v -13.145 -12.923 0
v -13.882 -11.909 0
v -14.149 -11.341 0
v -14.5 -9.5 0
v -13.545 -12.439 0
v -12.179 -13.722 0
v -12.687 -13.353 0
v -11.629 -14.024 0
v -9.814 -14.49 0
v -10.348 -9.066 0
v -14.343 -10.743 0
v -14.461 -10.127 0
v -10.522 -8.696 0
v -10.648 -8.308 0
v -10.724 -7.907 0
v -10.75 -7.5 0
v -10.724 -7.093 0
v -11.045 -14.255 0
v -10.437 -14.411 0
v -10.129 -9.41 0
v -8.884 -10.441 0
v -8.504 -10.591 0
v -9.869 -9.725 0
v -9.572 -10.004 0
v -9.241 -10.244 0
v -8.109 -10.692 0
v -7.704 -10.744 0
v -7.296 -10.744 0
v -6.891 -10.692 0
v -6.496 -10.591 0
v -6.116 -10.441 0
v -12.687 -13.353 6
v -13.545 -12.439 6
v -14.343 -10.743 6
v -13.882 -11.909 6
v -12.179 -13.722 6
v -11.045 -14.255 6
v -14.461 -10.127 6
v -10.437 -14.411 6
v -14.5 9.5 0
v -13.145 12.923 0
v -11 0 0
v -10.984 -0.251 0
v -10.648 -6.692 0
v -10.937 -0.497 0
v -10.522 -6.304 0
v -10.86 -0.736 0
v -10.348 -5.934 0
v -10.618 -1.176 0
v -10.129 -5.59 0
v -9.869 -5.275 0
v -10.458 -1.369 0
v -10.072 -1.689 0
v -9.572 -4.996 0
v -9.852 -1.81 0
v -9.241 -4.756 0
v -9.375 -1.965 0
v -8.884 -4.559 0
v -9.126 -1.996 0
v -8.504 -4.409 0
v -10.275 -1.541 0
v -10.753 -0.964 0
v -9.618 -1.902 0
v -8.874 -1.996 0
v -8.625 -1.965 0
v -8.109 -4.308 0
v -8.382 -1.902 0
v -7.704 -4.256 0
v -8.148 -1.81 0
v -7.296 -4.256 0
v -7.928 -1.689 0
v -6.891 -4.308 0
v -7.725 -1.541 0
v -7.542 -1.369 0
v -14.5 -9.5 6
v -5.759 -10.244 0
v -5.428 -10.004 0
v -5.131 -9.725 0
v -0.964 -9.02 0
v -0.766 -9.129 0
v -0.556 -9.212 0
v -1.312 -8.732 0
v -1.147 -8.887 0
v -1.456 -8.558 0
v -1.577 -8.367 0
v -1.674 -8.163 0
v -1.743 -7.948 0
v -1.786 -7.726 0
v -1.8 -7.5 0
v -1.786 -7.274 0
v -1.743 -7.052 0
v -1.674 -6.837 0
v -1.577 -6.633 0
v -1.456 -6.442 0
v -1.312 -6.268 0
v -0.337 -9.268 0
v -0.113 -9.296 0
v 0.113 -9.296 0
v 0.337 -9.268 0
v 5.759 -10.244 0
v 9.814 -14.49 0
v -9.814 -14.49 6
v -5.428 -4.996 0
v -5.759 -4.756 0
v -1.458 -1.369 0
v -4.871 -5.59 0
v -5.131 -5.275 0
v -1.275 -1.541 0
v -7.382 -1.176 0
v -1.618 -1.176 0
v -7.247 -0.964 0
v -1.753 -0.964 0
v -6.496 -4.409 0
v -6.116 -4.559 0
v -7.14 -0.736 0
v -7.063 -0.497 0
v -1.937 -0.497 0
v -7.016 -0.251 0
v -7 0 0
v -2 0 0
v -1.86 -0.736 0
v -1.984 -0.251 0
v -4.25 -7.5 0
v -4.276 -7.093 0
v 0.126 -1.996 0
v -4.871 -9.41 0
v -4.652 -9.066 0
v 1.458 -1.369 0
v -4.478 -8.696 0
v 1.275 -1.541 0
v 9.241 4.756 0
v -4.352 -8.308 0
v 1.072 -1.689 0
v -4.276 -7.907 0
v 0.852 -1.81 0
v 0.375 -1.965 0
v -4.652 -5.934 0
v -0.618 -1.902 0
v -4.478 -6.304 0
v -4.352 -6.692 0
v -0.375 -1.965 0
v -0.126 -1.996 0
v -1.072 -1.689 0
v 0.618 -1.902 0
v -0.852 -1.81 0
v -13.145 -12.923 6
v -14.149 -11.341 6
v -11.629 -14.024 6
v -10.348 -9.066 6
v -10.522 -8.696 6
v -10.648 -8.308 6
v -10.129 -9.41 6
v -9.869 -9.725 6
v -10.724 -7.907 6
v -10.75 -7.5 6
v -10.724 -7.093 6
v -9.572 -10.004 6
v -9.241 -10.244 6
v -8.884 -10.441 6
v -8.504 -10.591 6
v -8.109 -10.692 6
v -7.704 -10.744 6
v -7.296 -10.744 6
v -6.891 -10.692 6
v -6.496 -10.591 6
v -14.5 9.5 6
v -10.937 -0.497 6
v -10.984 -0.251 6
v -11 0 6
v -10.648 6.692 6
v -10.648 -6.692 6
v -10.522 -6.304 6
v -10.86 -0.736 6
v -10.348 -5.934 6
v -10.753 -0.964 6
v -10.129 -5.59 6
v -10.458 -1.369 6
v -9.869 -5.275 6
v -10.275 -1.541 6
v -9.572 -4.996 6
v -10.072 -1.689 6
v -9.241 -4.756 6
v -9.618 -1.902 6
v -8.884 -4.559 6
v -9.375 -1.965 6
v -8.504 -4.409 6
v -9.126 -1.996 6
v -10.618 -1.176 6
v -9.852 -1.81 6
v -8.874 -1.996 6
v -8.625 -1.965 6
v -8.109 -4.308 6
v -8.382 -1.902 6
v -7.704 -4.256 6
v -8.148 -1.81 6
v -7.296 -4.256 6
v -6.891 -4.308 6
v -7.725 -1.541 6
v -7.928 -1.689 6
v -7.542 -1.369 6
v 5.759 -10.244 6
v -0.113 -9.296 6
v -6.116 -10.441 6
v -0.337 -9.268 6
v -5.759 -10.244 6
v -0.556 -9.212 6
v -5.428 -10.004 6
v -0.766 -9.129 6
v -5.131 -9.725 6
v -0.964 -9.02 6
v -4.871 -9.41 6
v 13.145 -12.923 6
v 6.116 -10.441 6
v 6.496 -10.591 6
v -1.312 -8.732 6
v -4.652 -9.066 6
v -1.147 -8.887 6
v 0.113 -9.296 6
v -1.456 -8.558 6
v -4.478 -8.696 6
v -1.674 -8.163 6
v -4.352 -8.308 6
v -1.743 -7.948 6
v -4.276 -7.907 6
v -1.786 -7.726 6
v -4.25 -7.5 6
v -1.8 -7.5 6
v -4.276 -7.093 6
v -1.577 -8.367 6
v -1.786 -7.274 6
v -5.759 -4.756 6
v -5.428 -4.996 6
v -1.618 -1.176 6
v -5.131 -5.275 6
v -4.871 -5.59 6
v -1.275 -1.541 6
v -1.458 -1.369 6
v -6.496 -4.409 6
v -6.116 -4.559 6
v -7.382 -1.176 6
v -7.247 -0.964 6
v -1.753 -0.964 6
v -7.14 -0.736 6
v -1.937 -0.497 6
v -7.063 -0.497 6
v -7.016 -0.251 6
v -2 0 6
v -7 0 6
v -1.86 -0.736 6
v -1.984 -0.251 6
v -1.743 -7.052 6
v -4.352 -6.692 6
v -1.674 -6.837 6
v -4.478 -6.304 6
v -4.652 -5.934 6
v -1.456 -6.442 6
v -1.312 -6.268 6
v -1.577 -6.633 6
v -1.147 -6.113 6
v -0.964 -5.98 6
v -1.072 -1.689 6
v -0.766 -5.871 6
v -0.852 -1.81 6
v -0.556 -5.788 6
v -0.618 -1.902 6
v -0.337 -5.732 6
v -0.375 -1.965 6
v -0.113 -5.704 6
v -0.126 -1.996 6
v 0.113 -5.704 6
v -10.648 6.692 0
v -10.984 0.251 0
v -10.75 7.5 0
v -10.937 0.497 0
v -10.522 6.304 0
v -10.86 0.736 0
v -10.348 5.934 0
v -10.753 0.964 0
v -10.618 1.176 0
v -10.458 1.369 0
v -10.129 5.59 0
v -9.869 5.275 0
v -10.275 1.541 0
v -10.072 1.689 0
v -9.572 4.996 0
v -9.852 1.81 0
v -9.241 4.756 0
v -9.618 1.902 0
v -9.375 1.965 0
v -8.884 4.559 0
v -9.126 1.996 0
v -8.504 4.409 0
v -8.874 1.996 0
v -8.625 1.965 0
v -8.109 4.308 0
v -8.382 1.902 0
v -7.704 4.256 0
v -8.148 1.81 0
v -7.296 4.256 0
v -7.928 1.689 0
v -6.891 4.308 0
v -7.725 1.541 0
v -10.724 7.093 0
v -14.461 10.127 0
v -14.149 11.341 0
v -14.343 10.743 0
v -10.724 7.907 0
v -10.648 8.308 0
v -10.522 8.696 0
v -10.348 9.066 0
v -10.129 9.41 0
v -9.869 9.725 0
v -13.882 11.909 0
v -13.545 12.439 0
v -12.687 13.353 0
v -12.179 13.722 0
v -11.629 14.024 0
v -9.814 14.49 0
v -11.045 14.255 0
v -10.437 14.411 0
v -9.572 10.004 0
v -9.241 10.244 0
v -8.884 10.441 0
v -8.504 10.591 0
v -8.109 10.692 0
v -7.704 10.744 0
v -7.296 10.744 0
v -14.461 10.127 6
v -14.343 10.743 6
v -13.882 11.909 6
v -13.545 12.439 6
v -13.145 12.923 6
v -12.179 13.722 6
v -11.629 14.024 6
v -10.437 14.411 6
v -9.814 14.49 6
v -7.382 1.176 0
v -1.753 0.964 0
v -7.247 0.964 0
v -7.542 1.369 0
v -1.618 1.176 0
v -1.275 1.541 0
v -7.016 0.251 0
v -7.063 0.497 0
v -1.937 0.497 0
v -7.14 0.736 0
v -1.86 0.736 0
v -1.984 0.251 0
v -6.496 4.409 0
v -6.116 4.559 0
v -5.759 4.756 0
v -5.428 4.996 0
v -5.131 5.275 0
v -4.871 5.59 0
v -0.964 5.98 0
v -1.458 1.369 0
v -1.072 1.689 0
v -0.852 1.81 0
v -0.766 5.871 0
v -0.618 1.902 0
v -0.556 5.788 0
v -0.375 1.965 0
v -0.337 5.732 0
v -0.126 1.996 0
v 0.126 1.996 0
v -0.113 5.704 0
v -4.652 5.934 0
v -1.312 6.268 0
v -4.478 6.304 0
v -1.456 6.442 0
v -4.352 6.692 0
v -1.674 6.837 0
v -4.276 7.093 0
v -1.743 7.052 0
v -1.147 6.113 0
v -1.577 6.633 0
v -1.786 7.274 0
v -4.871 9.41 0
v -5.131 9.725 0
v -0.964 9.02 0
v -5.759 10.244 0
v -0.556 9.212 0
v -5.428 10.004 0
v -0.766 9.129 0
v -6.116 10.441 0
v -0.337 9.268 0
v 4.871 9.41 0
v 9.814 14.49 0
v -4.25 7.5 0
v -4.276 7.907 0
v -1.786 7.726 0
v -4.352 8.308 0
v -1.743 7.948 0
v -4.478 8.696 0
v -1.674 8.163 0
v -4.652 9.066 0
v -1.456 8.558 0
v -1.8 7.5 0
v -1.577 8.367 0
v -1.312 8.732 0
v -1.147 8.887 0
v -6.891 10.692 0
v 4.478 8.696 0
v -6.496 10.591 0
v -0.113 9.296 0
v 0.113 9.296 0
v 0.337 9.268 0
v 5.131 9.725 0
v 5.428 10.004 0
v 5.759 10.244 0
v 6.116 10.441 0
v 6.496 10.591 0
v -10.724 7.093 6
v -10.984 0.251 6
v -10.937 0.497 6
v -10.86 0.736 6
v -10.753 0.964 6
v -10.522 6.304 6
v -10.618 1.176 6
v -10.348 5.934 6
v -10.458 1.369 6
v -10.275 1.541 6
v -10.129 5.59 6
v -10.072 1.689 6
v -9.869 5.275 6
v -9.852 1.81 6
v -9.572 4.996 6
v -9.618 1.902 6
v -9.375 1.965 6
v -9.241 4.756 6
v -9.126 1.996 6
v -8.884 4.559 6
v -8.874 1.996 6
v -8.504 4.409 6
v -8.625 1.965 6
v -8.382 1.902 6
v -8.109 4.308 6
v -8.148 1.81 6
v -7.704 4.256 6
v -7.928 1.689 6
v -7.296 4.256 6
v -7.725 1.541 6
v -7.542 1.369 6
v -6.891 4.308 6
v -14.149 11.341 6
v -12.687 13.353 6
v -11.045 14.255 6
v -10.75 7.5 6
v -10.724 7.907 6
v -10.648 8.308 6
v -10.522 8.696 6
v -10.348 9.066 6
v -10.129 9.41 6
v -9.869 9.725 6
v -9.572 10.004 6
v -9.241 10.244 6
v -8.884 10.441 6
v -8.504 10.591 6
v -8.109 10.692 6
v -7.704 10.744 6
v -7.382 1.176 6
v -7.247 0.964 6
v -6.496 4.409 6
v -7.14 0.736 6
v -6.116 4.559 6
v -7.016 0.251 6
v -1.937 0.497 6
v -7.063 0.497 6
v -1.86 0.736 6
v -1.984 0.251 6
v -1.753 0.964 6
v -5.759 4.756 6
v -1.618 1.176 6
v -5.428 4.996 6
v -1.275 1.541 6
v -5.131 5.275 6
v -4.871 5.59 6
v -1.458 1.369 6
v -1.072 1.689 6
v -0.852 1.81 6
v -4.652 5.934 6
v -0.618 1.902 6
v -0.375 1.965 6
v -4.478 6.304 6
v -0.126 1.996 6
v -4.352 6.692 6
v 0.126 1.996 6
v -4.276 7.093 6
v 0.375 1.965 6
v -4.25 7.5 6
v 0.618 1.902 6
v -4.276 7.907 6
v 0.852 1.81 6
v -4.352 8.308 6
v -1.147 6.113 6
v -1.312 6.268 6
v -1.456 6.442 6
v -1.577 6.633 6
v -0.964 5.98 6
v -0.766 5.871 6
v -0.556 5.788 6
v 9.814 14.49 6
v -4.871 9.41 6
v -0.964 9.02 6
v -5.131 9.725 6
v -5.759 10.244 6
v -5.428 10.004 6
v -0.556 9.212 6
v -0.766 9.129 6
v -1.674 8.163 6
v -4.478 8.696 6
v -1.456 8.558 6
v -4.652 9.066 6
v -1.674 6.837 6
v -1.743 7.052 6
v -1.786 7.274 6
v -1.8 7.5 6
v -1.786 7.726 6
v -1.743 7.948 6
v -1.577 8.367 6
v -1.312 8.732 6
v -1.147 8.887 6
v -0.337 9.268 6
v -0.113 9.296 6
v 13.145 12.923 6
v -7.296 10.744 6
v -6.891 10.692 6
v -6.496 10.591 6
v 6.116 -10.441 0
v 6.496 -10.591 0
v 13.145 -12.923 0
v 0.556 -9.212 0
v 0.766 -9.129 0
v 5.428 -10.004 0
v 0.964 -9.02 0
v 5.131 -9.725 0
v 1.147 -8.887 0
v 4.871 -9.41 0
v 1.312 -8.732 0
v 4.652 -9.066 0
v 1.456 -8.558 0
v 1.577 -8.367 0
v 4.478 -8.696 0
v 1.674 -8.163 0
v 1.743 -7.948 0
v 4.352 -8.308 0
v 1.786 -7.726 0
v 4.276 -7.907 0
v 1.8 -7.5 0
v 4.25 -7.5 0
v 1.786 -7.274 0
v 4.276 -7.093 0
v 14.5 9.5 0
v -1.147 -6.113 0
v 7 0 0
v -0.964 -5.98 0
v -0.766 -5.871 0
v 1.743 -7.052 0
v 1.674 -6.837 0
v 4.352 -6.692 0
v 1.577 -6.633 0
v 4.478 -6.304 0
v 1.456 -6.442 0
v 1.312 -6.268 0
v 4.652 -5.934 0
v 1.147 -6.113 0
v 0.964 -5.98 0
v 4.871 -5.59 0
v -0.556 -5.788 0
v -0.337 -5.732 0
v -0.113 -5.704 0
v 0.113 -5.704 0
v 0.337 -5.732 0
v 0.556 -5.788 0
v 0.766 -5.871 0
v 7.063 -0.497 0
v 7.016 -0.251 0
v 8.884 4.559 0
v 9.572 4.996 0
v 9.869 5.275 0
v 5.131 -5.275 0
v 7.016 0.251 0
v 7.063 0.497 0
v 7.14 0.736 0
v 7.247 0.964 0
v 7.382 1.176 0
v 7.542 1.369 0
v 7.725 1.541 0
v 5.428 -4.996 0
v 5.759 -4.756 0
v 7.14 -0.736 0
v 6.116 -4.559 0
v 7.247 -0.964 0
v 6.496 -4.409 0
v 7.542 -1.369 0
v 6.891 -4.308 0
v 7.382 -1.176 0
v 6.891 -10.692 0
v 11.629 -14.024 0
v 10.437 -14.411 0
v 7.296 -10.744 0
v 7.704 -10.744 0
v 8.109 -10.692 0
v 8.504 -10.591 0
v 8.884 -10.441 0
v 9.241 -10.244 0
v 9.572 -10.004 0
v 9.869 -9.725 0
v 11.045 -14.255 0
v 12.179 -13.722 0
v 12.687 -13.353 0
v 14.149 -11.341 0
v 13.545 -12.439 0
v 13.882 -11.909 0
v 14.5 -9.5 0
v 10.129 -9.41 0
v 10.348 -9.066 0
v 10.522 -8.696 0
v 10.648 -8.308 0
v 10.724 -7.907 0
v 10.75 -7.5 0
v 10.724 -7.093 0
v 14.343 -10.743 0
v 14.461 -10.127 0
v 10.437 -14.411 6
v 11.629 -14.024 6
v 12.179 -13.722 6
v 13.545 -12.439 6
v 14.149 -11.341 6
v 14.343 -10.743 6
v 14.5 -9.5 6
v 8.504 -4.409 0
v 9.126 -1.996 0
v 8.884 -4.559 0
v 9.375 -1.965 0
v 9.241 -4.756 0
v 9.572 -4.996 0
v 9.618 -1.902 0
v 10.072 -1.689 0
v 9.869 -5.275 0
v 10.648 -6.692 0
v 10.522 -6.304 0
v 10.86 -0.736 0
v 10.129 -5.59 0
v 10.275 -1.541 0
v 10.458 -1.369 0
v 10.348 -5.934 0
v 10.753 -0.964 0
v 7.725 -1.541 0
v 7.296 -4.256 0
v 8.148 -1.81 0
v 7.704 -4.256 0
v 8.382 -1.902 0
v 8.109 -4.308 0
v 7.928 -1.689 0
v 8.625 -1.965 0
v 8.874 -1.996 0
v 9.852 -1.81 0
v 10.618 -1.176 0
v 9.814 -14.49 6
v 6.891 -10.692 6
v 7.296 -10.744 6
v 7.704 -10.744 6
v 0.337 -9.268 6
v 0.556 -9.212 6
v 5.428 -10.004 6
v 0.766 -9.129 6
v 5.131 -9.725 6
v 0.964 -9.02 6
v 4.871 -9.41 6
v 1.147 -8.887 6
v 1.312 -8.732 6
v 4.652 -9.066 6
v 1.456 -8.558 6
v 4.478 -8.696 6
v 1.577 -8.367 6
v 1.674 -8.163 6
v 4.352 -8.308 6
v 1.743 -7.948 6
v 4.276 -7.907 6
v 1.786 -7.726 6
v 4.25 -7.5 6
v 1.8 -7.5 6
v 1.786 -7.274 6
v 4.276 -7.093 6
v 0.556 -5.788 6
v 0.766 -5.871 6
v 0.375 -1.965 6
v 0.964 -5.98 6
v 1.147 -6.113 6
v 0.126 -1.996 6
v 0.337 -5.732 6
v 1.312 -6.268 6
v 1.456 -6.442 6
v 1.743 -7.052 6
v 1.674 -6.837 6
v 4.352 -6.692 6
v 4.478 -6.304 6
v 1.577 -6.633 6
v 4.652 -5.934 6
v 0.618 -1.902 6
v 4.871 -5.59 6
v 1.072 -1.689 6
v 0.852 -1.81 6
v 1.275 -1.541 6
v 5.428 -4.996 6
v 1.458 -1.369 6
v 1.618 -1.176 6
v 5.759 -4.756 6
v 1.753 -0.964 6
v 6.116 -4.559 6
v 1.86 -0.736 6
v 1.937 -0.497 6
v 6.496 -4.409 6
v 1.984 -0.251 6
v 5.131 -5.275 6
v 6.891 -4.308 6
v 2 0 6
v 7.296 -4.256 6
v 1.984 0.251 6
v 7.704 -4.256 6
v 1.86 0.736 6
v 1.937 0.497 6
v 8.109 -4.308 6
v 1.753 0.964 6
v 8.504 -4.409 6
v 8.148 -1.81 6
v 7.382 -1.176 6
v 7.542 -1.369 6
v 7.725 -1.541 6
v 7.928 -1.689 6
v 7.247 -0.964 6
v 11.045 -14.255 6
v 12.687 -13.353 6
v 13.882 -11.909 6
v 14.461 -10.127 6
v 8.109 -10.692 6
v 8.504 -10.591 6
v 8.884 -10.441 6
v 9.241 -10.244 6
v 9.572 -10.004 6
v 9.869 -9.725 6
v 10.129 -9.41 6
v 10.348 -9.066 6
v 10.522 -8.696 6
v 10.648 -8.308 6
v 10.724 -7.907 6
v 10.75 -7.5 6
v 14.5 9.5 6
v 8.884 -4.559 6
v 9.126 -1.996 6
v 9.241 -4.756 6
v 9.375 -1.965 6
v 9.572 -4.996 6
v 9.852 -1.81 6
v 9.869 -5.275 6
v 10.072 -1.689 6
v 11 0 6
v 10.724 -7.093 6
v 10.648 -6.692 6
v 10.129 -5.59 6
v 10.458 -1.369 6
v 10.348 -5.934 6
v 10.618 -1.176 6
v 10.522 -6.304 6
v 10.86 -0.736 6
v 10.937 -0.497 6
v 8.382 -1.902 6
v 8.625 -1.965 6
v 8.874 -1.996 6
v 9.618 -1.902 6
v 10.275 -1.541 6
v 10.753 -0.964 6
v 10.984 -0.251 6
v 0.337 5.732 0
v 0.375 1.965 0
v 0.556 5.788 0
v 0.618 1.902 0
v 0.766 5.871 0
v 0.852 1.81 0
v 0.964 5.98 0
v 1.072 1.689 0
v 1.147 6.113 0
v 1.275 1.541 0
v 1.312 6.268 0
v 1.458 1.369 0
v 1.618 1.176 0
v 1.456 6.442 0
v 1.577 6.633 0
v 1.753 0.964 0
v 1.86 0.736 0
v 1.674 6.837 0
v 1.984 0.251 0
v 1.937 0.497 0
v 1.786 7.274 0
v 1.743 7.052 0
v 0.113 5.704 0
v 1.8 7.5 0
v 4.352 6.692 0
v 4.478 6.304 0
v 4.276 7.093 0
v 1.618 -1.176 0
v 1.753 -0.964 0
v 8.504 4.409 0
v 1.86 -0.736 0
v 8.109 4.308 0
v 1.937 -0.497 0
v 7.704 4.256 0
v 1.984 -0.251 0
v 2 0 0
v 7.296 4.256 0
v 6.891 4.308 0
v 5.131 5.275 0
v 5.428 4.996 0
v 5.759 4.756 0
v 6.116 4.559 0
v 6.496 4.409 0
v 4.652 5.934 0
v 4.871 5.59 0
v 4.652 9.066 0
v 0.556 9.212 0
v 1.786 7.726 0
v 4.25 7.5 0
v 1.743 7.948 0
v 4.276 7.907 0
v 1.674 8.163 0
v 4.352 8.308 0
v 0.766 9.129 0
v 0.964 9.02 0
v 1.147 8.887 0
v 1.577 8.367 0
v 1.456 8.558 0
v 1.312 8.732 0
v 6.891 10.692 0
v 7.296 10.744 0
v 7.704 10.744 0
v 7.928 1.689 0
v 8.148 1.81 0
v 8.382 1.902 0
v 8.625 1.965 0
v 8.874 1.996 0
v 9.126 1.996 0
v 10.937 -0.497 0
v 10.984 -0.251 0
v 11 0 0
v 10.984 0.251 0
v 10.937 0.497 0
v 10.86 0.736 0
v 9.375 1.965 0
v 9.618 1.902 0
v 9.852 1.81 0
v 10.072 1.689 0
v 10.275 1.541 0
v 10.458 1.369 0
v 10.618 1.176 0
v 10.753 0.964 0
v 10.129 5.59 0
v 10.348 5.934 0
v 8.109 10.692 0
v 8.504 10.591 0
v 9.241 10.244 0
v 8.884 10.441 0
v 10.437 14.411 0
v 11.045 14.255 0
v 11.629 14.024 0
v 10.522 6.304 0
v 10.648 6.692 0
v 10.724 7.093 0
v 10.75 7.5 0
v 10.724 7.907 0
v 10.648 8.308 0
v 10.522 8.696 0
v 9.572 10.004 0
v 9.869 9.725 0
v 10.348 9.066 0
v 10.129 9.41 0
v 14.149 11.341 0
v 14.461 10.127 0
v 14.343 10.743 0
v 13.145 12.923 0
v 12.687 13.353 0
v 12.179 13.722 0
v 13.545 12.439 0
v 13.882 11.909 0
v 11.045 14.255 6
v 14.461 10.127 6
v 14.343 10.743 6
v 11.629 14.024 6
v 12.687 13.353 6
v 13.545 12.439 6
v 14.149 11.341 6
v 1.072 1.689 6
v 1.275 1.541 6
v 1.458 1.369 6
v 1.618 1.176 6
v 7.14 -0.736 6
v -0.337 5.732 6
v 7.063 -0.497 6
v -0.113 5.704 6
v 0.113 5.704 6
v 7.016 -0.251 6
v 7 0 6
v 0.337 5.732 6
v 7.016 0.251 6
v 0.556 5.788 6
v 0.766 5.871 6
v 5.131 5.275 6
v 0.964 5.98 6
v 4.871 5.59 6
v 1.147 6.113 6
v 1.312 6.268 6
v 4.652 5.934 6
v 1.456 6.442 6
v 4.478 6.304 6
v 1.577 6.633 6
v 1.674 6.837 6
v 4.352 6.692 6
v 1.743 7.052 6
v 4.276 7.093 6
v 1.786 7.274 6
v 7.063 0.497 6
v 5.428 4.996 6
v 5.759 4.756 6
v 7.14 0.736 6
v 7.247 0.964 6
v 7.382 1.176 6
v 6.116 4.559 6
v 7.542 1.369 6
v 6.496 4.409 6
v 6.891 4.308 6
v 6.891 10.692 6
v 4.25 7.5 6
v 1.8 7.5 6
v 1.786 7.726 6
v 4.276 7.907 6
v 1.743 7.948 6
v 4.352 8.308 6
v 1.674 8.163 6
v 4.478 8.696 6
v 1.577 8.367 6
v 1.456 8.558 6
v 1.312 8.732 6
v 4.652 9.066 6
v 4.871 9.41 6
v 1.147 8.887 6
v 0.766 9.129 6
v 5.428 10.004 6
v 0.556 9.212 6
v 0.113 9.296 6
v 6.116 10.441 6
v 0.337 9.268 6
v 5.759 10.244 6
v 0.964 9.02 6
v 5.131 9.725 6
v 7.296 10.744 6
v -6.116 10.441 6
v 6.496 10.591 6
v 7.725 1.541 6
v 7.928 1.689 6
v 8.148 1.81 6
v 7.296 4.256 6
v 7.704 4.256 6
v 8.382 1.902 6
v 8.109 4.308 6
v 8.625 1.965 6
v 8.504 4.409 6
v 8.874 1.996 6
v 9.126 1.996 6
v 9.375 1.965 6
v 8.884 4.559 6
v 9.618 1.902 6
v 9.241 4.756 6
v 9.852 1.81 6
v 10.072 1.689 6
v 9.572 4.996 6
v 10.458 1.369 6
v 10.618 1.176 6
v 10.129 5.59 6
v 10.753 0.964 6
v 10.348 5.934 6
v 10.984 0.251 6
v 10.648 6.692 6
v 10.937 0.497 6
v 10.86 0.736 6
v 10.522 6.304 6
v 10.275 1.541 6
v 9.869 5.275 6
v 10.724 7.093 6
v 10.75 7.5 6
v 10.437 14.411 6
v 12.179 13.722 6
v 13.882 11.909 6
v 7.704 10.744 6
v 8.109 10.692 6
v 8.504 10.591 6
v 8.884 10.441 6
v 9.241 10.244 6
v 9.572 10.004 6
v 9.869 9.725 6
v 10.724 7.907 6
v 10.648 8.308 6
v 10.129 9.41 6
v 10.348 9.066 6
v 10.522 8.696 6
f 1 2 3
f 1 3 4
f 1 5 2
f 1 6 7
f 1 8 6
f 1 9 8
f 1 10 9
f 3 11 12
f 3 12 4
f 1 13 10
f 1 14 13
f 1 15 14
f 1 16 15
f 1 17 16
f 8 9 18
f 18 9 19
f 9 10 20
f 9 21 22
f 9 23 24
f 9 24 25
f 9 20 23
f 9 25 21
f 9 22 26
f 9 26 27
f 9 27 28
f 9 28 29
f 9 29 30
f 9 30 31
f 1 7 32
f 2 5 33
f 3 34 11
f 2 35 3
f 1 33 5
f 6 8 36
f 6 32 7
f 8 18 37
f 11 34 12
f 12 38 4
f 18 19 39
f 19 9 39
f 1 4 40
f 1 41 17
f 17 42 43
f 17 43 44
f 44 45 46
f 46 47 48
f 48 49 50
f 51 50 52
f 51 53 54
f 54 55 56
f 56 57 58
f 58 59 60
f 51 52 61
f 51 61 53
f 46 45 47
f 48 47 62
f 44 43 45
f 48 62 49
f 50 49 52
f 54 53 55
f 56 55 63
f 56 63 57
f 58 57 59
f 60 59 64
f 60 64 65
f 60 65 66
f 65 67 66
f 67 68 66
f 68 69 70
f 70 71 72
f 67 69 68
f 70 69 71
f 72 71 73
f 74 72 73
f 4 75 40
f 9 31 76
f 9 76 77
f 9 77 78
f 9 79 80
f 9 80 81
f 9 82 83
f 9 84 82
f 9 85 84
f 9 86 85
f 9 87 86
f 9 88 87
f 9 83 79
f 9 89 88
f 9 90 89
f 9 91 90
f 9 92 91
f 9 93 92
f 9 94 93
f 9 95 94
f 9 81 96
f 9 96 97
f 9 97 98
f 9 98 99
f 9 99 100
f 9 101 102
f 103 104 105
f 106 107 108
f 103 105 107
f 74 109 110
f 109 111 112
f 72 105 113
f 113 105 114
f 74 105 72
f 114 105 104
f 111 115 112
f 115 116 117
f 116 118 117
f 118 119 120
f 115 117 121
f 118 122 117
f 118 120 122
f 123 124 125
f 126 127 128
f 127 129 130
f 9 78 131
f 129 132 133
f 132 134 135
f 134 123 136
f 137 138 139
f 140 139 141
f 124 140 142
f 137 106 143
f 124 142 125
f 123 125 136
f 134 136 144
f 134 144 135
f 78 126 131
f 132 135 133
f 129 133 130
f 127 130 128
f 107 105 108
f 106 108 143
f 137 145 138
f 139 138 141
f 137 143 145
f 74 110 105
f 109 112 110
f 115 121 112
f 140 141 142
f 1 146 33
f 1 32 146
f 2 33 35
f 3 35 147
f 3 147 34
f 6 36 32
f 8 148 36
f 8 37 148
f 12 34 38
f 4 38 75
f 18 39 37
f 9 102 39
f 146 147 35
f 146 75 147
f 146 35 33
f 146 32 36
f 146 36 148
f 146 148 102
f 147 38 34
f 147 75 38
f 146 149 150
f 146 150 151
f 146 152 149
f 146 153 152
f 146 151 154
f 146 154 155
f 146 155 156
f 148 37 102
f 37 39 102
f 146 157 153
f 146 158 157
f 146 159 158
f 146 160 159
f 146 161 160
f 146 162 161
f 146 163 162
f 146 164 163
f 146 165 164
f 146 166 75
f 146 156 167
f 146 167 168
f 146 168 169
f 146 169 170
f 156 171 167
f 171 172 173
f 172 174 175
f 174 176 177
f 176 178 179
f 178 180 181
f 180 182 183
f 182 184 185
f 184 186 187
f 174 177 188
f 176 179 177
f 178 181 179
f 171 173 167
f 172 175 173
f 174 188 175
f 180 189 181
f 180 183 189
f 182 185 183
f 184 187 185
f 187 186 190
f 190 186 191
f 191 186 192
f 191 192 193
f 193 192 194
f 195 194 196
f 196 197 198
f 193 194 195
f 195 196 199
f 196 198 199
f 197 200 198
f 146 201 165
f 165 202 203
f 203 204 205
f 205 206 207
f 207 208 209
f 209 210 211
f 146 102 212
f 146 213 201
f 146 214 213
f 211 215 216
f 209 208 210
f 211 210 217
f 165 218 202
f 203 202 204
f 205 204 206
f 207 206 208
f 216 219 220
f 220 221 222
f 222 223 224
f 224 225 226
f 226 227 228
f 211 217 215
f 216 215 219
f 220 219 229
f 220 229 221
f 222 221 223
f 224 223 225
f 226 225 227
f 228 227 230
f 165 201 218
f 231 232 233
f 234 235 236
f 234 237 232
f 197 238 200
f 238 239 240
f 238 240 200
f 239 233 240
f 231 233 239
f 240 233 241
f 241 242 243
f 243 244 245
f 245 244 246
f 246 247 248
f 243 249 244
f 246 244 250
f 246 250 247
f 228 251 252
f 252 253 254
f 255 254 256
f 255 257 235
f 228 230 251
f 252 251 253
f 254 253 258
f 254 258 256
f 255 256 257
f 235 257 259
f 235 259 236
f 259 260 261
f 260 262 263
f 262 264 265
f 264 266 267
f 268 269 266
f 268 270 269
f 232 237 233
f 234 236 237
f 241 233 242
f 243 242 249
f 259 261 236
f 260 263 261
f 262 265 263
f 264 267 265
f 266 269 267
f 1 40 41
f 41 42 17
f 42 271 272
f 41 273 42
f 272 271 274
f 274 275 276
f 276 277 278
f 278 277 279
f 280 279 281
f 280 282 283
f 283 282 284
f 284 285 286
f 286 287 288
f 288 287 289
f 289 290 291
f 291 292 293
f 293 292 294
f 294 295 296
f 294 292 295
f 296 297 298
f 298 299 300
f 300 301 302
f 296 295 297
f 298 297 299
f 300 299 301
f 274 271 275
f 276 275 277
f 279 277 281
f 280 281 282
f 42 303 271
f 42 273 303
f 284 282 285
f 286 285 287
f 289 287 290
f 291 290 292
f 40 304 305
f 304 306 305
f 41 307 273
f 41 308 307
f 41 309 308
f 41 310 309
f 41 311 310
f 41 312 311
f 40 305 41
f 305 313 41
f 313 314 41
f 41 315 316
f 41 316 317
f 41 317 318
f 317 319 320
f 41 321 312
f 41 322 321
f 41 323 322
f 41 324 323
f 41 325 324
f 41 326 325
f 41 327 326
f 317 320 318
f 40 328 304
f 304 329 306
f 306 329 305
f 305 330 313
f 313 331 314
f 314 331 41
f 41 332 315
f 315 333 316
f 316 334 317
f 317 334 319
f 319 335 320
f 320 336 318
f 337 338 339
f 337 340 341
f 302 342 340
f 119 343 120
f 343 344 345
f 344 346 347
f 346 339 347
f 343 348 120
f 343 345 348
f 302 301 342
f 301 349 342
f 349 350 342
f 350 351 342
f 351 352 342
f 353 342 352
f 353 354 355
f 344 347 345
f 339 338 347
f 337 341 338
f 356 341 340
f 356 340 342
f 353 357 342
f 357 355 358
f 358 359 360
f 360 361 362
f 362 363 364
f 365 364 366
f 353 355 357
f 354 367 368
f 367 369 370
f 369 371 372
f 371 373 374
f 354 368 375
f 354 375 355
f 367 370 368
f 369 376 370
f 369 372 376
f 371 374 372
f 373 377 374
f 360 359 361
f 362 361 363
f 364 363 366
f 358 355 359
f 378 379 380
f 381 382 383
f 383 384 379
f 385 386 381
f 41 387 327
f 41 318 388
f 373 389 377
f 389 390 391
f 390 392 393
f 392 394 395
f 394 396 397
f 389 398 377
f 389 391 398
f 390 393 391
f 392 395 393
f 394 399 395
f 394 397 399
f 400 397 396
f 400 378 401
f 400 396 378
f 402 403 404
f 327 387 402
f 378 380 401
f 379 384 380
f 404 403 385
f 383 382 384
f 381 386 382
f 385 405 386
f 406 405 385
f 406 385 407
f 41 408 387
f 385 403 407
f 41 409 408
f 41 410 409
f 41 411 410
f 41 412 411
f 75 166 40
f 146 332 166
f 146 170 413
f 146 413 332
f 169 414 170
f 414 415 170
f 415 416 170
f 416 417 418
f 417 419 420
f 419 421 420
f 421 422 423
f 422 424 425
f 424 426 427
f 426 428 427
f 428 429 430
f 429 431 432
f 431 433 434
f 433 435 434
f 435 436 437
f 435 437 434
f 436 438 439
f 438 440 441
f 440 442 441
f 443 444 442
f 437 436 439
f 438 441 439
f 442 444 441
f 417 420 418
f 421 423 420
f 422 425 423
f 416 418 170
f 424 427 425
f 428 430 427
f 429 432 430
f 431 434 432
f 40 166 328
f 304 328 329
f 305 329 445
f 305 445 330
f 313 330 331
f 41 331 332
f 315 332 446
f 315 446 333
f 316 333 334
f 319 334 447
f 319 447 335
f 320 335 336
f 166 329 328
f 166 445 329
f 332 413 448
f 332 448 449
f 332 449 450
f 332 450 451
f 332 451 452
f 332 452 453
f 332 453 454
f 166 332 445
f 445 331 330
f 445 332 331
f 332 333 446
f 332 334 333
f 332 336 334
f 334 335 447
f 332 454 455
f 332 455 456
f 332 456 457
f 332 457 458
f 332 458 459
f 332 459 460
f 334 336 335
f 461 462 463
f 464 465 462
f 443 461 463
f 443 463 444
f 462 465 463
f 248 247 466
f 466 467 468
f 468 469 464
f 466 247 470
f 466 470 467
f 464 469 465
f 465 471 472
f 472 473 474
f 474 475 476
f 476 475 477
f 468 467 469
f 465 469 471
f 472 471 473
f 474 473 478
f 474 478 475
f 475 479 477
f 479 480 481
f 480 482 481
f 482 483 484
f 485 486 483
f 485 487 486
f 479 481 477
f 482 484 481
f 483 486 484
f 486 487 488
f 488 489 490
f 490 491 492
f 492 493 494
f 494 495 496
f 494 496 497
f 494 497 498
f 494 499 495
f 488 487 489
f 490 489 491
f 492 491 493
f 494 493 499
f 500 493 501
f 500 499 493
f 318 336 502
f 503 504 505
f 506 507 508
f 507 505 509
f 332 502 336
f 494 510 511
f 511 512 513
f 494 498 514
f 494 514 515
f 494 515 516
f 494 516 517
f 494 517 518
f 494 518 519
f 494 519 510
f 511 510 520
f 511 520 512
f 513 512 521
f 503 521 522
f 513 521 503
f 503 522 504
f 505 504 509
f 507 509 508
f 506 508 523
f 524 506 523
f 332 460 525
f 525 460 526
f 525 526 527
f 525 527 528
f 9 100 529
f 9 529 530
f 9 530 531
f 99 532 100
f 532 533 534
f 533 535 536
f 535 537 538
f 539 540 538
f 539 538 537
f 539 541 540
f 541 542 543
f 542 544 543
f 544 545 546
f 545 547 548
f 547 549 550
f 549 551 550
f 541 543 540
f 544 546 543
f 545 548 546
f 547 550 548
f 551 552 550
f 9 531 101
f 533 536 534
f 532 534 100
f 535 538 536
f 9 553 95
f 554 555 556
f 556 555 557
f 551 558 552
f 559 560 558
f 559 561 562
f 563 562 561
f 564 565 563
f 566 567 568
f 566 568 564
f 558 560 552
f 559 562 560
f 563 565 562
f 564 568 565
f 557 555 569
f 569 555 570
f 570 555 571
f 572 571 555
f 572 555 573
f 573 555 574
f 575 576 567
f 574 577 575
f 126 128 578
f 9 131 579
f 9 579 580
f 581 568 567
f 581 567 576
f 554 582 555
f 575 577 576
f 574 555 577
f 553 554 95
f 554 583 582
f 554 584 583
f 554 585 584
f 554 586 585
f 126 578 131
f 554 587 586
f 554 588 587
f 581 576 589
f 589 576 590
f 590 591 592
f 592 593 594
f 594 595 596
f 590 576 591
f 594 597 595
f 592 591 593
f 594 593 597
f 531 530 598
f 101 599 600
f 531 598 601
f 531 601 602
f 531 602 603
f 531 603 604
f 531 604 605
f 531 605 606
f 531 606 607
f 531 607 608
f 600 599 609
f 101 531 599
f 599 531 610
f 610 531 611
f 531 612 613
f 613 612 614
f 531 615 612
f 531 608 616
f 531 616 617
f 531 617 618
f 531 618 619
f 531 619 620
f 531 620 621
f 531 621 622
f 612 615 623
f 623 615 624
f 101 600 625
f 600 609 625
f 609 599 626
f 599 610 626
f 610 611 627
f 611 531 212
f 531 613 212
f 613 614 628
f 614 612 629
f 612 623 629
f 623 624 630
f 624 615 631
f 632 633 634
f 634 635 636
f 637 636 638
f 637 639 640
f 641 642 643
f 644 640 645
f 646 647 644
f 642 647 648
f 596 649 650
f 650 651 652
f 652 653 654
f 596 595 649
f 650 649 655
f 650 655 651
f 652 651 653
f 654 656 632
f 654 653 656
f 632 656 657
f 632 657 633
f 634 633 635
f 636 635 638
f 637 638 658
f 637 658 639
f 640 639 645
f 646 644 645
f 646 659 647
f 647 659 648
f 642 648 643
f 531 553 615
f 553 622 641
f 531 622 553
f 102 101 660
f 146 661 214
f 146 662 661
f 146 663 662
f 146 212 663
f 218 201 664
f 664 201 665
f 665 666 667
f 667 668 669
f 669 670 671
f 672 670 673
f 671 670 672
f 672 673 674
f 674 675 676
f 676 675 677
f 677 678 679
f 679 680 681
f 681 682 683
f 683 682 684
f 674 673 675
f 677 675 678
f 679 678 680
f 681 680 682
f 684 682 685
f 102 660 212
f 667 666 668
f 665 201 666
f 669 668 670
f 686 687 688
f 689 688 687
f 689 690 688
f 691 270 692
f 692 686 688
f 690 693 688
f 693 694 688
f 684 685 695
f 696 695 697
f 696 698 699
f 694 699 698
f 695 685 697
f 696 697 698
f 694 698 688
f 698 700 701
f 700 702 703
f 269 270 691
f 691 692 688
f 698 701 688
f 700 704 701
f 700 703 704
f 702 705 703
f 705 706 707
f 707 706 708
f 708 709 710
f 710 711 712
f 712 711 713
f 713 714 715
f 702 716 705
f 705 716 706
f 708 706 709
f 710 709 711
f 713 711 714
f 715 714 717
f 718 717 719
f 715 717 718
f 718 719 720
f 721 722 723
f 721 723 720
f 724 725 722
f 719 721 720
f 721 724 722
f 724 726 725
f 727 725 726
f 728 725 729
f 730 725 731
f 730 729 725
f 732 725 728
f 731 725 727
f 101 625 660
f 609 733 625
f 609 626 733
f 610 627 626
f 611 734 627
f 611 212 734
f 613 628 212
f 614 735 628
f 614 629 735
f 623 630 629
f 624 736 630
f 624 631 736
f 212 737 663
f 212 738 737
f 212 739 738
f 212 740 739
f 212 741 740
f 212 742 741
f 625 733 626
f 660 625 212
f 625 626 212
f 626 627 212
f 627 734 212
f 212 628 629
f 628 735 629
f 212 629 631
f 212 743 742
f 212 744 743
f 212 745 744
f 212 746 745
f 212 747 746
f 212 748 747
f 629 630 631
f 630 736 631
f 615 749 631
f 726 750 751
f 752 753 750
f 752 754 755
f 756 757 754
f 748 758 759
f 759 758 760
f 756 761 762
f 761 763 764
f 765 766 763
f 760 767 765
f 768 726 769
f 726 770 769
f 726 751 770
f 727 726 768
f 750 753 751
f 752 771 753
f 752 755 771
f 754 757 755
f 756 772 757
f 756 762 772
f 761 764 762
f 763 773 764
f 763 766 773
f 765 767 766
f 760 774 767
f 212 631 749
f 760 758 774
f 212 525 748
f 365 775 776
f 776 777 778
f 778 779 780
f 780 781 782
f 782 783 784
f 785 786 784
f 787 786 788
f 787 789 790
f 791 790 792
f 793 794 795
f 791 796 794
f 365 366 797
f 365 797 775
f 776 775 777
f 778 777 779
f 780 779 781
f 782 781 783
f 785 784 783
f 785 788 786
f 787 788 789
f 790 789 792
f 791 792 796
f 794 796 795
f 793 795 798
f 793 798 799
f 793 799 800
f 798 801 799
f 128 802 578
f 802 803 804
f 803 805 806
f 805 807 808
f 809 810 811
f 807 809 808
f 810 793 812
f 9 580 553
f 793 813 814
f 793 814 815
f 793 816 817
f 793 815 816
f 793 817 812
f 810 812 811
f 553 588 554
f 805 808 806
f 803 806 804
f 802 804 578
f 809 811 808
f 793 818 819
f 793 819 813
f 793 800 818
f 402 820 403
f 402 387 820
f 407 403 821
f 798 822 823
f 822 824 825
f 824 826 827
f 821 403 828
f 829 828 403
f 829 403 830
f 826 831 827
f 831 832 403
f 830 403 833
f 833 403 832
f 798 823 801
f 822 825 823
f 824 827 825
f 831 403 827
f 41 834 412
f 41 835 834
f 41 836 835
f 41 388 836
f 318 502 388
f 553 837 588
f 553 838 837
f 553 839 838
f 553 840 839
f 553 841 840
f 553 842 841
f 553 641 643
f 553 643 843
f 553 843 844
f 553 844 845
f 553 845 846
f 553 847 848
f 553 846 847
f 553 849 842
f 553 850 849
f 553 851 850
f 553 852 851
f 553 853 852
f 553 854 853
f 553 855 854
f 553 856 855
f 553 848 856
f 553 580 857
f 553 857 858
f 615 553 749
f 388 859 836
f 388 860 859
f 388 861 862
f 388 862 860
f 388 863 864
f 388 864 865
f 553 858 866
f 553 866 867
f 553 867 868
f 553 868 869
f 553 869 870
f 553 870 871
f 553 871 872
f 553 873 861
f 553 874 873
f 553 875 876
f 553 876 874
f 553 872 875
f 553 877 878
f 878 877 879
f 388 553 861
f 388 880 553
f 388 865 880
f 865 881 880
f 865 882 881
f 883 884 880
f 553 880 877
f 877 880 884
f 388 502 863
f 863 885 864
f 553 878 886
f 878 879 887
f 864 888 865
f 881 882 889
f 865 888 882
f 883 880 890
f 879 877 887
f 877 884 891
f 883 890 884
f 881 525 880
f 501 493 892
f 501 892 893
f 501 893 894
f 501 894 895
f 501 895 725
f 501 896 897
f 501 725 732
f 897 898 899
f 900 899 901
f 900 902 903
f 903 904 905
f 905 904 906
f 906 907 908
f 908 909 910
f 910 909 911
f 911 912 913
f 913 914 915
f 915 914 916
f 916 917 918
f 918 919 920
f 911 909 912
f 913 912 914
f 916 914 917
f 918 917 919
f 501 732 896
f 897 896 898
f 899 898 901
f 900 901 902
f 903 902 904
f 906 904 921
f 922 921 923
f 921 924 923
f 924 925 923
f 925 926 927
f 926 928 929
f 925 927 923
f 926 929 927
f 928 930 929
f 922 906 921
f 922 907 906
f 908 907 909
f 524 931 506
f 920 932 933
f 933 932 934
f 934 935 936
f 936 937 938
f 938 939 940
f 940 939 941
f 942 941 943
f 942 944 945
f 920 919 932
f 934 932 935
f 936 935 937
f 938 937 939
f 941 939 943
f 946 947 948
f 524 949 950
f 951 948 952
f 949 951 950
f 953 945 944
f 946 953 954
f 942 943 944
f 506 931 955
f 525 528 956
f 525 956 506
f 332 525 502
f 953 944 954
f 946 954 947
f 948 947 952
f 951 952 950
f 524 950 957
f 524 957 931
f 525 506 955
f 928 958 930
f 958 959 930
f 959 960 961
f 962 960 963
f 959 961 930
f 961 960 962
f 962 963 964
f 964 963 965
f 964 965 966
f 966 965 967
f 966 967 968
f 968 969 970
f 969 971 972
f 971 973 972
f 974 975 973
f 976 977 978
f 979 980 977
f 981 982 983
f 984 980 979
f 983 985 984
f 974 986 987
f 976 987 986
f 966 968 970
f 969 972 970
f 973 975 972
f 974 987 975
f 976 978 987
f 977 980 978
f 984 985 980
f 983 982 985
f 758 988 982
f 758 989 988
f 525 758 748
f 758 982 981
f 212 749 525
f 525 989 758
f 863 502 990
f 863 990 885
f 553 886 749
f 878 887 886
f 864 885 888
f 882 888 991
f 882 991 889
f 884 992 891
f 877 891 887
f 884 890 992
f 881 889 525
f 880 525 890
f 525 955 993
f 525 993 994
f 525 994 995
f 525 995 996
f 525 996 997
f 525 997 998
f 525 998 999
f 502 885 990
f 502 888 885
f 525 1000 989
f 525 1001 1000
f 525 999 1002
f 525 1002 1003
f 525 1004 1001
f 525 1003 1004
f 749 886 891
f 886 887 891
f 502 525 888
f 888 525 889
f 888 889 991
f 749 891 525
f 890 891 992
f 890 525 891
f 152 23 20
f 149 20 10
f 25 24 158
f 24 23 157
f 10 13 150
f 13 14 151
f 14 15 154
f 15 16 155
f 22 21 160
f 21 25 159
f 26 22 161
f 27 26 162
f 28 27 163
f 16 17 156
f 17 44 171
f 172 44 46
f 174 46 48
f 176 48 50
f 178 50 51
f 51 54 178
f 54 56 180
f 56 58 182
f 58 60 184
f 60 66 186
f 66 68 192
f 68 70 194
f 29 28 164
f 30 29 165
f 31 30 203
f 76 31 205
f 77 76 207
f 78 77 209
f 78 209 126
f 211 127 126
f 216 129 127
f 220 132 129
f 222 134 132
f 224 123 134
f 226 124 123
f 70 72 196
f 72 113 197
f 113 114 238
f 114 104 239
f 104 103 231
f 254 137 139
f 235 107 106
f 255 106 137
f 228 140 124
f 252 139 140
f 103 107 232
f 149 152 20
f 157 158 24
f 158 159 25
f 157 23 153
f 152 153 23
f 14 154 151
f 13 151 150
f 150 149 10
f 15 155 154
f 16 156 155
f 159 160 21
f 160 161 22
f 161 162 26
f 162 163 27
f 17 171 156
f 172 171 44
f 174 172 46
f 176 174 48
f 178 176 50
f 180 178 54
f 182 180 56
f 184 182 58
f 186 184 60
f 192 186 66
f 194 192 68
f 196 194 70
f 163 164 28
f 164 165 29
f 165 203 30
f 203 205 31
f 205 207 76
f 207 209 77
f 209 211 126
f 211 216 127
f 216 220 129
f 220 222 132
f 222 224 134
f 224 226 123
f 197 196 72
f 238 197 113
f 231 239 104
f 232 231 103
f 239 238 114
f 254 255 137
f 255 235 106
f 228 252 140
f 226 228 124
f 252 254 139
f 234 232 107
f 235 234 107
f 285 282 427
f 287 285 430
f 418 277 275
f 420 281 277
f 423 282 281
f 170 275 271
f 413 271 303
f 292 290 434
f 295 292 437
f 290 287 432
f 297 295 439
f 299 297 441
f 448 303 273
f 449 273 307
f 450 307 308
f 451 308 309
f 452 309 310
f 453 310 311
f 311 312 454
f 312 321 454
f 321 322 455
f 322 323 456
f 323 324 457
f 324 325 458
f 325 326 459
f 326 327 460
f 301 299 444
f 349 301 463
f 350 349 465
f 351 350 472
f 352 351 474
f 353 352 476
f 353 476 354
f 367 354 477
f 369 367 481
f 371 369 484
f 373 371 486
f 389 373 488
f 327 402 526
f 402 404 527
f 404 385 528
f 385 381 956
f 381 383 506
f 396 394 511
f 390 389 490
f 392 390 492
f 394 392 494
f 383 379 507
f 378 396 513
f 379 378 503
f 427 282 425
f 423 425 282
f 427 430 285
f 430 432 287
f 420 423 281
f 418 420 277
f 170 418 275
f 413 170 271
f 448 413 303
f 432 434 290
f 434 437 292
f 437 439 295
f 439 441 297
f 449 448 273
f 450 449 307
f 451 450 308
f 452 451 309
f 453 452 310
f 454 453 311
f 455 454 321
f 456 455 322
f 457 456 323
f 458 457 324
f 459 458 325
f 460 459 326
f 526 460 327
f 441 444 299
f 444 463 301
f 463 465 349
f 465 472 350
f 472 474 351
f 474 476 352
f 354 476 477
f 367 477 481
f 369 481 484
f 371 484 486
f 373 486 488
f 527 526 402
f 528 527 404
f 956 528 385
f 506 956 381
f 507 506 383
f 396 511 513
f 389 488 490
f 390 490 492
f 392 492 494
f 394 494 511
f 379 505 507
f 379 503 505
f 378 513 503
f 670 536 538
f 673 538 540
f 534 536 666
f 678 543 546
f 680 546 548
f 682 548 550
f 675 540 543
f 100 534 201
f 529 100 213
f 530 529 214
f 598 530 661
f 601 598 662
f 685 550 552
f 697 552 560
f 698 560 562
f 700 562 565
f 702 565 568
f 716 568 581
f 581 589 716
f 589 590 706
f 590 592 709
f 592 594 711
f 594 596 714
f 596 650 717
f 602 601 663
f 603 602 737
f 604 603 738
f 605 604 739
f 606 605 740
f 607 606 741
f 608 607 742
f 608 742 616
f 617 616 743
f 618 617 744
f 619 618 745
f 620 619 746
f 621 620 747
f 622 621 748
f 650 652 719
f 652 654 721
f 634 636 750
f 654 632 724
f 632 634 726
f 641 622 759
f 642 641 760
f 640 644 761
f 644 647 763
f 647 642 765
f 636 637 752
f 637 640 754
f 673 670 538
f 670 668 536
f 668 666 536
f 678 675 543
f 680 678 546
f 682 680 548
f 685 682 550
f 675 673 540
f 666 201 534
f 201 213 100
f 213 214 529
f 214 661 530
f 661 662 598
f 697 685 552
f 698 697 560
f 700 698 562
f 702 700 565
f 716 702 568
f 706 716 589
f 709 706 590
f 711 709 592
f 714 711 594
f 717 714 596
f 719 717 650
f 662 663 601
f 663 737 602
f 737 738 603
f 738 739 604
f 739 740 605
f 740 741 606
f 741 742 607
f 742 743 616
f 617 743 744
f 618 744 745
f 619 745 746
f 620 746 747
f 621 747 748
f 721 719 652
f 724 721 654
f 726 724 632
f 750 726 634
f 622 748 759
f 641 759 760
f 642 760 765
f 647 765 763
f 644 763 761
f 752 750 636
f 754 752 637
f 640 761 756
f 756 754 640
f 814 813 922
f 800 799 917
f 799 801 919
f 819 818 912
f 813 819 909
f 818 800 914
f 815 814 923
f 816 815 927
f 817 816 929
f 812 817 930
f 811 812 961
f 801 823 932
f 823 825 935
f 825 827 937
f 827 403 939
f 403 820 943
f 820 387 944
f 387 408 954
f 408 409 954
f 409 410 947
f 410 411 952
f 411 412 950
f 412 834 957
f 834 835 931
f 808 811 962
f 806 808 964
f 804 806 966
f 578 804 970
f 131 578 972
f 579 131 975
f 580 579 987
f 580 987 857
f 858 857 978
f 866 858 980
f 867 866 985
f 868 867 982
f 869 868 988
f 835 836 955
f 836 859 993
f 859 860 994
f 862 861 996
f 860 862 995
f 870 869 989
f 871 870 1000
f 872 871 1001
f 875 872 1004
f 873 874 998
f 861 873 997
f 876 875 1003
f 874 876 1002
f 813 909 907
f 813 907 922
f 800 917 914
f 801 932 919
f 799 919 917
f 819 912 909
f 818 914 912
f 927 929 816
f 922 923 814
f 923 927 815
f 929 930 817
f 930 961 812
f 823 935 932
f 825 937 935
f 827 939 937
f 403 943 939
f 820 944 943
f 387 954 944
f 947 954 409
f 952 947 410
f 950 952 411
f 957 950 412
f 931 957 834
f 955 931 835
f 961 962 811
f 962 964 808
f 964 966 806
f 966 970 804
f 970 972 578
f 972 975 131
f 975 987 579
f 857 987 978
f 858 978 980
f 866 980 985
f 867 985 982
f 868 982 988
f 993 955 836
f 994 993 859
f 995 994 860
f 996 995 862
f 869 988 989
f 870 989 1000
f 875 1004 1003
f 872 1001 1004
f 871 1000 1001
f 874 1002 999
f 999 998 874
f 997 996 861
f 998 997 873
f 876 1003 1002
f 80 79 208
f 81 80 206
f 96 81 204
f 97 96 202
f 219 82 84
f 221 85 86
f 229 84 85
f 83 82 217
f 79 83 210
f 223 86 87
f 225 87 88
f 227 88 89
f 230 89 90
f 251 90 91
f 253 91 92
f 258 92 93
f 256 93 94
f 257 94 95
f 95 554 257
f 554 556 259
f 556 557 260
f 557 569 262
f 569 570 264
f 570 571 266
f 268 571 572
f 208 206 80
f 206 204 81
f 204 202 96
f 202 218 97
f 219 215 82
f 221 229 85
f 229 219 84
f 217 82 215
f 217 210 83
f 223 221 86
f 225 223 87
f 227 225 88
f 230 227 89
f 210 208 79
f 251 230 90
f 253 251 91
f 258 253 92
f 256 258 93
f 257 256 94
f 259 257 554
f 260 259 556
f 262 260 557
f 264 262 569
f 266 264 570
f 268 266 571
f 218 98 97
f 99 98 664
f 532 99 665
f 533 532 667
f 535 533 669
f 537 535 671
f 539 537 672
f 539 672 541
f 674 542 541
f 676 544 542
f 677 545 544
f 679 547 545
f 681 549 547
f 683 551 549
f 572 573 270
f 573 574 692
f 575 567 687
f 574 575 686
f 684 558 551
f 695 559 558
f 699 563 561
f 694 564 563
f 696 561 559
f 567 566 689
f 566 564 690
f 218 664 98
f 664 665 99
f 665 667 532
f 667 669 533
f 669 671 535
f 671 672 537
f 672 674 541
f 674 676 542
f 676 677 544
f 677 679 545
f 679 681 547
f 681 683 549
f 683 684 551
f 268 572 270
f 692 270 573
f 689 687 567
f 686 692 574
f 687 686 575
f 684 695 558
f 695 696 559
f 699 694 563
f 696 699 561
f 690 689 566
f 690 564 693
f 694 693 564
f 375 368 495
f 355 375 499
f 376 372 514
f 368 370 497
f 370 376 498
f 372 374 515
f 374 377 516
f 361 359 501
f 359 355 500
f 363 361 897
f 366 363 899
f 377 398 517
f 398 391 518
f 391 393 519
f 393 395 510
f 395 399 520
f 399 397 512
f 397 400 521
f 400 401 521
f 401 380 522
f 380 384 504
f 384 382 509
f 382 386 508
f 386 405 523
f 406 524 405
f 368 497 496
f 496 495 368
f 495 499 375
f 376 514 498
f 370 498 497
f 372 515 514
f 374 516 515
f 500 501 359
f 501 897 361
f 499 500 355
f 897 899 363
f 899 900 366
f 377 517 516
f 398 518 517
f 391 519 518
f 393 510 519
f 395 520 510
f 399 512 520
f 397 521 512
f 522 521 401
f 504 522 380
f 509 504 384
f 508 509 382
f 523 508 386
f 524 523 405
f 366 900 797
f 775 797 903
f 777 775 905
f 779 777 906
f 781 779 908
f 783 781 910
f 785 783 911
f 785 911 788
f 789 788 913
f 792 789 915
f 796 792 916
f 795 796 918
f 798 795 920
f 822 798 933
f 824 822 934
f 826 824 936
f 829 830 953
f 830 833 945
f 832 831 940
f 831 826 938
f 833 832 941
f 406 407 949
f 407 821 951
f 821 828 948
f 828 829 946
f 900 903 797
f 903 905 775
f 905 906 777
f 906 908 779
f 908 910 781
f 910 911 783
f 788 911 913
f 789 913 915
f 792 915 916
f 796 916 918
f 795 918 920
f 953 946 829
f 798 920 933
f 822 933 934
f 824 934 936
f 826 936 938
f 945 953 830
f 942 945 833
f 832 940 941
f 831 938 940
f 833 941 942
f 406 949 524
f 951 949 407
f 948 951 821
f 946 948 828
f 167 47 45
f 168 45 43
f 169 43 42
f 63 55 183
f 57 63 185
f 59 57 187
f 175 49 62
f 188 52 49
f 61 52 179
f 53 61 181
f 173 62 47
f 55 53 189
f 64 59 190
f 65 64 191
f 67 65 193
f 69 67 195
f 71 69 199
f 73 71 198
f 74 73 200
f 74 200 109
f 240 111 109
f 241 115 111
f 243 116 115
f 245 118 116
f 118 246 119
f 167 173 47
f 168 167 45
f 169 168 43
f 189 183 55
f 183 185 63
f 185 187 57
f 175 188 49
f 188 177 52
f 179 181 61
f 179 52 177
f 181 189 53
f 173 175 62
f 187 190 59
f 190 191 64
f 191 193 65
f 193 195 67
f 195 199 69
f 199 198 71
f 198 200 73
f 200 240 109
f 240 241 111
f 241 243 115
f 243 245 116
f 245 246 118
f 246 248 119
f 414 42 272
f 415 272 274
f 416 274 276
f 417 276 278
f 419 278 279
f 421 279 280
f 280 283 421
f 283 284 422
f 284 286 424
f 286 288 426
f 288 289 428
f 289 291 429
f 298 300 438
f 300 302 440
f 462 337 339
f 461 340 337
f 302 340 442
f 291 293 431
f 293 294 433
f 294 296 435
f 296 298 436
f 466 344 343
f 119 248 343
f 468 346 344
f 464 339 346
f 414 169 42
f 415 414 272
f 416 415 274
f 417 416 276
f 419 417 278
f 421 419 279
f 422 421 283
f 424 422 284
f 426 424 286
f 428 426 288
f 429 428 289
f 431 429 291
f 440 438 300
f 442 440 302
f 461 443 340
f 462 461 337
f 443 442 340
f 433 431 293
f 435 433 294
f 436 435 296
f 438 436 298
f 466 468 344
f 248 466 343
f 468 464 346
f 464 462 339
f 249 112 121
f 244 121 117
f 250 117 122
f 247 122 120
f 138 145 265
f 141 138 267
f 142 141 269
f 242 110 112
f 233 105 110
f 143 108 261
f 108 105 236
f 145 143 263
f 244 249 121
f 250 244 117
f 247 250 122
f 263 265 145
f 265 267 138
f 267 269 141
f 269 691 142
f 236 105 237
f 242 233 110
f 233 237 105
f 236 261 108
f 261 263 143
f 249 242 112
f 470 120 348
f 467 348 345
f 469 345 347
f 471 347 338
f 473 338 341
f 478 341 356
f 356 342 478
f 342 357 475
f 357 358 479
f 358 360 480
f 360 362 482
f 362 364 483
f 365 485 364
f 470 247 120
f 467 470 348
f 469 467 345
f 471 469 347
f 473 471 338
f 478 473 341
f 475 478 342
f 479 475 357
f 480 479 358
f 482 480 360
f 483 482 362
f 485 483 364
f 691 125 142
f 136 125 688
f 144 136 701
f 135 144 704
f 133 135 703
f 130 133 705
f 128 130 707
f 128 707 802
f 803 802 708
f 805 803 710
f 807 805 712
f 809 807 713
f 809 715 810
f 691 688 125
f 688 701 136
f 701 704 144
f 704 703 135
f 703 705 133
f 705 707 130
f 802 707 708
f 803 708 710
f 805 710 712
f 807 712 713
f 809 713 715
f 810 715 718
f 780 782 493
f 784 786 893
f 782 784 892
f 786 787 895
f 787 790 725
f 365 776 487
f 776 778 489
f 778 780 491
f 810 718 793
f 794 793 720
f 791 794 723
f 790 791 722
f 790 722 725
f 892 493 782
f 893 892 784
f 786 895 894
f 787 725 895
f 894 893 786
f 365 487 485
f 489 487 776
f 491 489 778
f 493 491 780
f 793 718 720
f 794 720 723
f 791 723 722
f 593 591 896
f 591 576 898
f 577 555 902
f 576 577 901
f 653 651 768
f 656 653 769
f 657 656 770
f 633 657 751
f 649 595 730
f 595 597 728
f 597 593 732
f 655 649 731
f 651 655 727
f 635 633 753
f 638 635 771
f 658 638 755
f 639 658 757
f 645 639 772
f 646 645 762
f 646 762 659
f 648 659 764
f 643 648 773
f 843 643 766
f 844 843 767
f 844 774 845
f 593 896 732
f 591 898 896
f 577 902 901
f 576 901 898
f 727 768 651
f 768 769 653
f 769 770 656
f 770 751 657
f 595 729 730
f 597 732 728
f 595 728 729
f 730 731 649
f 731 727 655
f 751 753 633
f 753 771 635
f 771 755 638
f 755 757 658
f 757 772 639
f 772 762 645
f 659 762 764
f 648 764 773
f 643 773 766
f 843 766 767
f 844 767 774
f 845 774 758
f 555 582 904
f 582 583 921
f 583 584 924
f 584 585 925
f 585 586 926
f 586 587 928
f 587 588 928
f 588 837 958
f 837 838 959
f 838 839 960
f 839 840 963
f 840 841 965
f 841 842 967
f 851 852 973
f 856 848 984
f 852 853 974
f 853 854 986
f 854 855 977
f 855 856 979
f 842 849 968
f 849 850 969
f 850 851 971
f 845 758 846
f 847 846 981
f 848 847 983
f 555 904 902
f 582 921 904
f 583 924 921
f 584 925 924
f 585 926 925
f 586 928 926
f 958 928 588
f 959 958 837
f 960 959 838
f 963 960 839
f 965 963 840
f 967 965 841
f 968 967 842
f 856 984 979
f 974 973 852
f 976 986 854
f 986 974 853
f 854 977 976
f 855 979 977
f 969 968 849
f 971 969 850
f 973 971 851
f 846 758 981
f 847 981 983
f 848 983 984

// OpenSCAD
$fn = 50;

difference() {
	union() {
		hull() {
			translate(v = [-9.5, 9.5, 0]) {
				cylinder(h = 6, r = 5);
			}
			translate(v = [9.5, 9.5, 0]) {
				cylinder(h = 6, r = 5);
			}
			translate(v = [-9.5, -9.5, 0]) {
				cylinder(h = 6, r = 5);
			}
			translate(v = [9.5, -9.5, 0]) {
				cylinder(h = 6, r = 5);
			}
		}
	}
	union() {
		translate(v = [-7.5, -7.5, 0]) {
			cylinder(h = 6, r = 3.25);
		}
		translate(v = [-7.5, 7.5, 0]) {
			cylinder(h = 6, r = 3.25);
		}
		translate(v = [7.5, -7.5, 0]) {
			cylinder(h = 6, r = 3.25);
		}
		translate(v = [7.5, 7.5, 0]) {
			cylinder(h = 6, r = 3.25);
		}
		translate(v = [0.0, -7.5, 0]) {
			cylinder(h = 6, r = 1.8);
		}
		translate(v = [0.0, 7.5, 0]) {
			cylinder(h = 6, r = 1.8);
		}
		translate(v = [-9.0, 0, 0.0]) {
			cylinder(h = 6, r = 2.0);
		}
		cylinder(h = 6, r = 2.0);
		translate(v = [9.0, 0, 0.0]) {
			cylinder(h = 6, r = 2.0);
		}
	}
}
